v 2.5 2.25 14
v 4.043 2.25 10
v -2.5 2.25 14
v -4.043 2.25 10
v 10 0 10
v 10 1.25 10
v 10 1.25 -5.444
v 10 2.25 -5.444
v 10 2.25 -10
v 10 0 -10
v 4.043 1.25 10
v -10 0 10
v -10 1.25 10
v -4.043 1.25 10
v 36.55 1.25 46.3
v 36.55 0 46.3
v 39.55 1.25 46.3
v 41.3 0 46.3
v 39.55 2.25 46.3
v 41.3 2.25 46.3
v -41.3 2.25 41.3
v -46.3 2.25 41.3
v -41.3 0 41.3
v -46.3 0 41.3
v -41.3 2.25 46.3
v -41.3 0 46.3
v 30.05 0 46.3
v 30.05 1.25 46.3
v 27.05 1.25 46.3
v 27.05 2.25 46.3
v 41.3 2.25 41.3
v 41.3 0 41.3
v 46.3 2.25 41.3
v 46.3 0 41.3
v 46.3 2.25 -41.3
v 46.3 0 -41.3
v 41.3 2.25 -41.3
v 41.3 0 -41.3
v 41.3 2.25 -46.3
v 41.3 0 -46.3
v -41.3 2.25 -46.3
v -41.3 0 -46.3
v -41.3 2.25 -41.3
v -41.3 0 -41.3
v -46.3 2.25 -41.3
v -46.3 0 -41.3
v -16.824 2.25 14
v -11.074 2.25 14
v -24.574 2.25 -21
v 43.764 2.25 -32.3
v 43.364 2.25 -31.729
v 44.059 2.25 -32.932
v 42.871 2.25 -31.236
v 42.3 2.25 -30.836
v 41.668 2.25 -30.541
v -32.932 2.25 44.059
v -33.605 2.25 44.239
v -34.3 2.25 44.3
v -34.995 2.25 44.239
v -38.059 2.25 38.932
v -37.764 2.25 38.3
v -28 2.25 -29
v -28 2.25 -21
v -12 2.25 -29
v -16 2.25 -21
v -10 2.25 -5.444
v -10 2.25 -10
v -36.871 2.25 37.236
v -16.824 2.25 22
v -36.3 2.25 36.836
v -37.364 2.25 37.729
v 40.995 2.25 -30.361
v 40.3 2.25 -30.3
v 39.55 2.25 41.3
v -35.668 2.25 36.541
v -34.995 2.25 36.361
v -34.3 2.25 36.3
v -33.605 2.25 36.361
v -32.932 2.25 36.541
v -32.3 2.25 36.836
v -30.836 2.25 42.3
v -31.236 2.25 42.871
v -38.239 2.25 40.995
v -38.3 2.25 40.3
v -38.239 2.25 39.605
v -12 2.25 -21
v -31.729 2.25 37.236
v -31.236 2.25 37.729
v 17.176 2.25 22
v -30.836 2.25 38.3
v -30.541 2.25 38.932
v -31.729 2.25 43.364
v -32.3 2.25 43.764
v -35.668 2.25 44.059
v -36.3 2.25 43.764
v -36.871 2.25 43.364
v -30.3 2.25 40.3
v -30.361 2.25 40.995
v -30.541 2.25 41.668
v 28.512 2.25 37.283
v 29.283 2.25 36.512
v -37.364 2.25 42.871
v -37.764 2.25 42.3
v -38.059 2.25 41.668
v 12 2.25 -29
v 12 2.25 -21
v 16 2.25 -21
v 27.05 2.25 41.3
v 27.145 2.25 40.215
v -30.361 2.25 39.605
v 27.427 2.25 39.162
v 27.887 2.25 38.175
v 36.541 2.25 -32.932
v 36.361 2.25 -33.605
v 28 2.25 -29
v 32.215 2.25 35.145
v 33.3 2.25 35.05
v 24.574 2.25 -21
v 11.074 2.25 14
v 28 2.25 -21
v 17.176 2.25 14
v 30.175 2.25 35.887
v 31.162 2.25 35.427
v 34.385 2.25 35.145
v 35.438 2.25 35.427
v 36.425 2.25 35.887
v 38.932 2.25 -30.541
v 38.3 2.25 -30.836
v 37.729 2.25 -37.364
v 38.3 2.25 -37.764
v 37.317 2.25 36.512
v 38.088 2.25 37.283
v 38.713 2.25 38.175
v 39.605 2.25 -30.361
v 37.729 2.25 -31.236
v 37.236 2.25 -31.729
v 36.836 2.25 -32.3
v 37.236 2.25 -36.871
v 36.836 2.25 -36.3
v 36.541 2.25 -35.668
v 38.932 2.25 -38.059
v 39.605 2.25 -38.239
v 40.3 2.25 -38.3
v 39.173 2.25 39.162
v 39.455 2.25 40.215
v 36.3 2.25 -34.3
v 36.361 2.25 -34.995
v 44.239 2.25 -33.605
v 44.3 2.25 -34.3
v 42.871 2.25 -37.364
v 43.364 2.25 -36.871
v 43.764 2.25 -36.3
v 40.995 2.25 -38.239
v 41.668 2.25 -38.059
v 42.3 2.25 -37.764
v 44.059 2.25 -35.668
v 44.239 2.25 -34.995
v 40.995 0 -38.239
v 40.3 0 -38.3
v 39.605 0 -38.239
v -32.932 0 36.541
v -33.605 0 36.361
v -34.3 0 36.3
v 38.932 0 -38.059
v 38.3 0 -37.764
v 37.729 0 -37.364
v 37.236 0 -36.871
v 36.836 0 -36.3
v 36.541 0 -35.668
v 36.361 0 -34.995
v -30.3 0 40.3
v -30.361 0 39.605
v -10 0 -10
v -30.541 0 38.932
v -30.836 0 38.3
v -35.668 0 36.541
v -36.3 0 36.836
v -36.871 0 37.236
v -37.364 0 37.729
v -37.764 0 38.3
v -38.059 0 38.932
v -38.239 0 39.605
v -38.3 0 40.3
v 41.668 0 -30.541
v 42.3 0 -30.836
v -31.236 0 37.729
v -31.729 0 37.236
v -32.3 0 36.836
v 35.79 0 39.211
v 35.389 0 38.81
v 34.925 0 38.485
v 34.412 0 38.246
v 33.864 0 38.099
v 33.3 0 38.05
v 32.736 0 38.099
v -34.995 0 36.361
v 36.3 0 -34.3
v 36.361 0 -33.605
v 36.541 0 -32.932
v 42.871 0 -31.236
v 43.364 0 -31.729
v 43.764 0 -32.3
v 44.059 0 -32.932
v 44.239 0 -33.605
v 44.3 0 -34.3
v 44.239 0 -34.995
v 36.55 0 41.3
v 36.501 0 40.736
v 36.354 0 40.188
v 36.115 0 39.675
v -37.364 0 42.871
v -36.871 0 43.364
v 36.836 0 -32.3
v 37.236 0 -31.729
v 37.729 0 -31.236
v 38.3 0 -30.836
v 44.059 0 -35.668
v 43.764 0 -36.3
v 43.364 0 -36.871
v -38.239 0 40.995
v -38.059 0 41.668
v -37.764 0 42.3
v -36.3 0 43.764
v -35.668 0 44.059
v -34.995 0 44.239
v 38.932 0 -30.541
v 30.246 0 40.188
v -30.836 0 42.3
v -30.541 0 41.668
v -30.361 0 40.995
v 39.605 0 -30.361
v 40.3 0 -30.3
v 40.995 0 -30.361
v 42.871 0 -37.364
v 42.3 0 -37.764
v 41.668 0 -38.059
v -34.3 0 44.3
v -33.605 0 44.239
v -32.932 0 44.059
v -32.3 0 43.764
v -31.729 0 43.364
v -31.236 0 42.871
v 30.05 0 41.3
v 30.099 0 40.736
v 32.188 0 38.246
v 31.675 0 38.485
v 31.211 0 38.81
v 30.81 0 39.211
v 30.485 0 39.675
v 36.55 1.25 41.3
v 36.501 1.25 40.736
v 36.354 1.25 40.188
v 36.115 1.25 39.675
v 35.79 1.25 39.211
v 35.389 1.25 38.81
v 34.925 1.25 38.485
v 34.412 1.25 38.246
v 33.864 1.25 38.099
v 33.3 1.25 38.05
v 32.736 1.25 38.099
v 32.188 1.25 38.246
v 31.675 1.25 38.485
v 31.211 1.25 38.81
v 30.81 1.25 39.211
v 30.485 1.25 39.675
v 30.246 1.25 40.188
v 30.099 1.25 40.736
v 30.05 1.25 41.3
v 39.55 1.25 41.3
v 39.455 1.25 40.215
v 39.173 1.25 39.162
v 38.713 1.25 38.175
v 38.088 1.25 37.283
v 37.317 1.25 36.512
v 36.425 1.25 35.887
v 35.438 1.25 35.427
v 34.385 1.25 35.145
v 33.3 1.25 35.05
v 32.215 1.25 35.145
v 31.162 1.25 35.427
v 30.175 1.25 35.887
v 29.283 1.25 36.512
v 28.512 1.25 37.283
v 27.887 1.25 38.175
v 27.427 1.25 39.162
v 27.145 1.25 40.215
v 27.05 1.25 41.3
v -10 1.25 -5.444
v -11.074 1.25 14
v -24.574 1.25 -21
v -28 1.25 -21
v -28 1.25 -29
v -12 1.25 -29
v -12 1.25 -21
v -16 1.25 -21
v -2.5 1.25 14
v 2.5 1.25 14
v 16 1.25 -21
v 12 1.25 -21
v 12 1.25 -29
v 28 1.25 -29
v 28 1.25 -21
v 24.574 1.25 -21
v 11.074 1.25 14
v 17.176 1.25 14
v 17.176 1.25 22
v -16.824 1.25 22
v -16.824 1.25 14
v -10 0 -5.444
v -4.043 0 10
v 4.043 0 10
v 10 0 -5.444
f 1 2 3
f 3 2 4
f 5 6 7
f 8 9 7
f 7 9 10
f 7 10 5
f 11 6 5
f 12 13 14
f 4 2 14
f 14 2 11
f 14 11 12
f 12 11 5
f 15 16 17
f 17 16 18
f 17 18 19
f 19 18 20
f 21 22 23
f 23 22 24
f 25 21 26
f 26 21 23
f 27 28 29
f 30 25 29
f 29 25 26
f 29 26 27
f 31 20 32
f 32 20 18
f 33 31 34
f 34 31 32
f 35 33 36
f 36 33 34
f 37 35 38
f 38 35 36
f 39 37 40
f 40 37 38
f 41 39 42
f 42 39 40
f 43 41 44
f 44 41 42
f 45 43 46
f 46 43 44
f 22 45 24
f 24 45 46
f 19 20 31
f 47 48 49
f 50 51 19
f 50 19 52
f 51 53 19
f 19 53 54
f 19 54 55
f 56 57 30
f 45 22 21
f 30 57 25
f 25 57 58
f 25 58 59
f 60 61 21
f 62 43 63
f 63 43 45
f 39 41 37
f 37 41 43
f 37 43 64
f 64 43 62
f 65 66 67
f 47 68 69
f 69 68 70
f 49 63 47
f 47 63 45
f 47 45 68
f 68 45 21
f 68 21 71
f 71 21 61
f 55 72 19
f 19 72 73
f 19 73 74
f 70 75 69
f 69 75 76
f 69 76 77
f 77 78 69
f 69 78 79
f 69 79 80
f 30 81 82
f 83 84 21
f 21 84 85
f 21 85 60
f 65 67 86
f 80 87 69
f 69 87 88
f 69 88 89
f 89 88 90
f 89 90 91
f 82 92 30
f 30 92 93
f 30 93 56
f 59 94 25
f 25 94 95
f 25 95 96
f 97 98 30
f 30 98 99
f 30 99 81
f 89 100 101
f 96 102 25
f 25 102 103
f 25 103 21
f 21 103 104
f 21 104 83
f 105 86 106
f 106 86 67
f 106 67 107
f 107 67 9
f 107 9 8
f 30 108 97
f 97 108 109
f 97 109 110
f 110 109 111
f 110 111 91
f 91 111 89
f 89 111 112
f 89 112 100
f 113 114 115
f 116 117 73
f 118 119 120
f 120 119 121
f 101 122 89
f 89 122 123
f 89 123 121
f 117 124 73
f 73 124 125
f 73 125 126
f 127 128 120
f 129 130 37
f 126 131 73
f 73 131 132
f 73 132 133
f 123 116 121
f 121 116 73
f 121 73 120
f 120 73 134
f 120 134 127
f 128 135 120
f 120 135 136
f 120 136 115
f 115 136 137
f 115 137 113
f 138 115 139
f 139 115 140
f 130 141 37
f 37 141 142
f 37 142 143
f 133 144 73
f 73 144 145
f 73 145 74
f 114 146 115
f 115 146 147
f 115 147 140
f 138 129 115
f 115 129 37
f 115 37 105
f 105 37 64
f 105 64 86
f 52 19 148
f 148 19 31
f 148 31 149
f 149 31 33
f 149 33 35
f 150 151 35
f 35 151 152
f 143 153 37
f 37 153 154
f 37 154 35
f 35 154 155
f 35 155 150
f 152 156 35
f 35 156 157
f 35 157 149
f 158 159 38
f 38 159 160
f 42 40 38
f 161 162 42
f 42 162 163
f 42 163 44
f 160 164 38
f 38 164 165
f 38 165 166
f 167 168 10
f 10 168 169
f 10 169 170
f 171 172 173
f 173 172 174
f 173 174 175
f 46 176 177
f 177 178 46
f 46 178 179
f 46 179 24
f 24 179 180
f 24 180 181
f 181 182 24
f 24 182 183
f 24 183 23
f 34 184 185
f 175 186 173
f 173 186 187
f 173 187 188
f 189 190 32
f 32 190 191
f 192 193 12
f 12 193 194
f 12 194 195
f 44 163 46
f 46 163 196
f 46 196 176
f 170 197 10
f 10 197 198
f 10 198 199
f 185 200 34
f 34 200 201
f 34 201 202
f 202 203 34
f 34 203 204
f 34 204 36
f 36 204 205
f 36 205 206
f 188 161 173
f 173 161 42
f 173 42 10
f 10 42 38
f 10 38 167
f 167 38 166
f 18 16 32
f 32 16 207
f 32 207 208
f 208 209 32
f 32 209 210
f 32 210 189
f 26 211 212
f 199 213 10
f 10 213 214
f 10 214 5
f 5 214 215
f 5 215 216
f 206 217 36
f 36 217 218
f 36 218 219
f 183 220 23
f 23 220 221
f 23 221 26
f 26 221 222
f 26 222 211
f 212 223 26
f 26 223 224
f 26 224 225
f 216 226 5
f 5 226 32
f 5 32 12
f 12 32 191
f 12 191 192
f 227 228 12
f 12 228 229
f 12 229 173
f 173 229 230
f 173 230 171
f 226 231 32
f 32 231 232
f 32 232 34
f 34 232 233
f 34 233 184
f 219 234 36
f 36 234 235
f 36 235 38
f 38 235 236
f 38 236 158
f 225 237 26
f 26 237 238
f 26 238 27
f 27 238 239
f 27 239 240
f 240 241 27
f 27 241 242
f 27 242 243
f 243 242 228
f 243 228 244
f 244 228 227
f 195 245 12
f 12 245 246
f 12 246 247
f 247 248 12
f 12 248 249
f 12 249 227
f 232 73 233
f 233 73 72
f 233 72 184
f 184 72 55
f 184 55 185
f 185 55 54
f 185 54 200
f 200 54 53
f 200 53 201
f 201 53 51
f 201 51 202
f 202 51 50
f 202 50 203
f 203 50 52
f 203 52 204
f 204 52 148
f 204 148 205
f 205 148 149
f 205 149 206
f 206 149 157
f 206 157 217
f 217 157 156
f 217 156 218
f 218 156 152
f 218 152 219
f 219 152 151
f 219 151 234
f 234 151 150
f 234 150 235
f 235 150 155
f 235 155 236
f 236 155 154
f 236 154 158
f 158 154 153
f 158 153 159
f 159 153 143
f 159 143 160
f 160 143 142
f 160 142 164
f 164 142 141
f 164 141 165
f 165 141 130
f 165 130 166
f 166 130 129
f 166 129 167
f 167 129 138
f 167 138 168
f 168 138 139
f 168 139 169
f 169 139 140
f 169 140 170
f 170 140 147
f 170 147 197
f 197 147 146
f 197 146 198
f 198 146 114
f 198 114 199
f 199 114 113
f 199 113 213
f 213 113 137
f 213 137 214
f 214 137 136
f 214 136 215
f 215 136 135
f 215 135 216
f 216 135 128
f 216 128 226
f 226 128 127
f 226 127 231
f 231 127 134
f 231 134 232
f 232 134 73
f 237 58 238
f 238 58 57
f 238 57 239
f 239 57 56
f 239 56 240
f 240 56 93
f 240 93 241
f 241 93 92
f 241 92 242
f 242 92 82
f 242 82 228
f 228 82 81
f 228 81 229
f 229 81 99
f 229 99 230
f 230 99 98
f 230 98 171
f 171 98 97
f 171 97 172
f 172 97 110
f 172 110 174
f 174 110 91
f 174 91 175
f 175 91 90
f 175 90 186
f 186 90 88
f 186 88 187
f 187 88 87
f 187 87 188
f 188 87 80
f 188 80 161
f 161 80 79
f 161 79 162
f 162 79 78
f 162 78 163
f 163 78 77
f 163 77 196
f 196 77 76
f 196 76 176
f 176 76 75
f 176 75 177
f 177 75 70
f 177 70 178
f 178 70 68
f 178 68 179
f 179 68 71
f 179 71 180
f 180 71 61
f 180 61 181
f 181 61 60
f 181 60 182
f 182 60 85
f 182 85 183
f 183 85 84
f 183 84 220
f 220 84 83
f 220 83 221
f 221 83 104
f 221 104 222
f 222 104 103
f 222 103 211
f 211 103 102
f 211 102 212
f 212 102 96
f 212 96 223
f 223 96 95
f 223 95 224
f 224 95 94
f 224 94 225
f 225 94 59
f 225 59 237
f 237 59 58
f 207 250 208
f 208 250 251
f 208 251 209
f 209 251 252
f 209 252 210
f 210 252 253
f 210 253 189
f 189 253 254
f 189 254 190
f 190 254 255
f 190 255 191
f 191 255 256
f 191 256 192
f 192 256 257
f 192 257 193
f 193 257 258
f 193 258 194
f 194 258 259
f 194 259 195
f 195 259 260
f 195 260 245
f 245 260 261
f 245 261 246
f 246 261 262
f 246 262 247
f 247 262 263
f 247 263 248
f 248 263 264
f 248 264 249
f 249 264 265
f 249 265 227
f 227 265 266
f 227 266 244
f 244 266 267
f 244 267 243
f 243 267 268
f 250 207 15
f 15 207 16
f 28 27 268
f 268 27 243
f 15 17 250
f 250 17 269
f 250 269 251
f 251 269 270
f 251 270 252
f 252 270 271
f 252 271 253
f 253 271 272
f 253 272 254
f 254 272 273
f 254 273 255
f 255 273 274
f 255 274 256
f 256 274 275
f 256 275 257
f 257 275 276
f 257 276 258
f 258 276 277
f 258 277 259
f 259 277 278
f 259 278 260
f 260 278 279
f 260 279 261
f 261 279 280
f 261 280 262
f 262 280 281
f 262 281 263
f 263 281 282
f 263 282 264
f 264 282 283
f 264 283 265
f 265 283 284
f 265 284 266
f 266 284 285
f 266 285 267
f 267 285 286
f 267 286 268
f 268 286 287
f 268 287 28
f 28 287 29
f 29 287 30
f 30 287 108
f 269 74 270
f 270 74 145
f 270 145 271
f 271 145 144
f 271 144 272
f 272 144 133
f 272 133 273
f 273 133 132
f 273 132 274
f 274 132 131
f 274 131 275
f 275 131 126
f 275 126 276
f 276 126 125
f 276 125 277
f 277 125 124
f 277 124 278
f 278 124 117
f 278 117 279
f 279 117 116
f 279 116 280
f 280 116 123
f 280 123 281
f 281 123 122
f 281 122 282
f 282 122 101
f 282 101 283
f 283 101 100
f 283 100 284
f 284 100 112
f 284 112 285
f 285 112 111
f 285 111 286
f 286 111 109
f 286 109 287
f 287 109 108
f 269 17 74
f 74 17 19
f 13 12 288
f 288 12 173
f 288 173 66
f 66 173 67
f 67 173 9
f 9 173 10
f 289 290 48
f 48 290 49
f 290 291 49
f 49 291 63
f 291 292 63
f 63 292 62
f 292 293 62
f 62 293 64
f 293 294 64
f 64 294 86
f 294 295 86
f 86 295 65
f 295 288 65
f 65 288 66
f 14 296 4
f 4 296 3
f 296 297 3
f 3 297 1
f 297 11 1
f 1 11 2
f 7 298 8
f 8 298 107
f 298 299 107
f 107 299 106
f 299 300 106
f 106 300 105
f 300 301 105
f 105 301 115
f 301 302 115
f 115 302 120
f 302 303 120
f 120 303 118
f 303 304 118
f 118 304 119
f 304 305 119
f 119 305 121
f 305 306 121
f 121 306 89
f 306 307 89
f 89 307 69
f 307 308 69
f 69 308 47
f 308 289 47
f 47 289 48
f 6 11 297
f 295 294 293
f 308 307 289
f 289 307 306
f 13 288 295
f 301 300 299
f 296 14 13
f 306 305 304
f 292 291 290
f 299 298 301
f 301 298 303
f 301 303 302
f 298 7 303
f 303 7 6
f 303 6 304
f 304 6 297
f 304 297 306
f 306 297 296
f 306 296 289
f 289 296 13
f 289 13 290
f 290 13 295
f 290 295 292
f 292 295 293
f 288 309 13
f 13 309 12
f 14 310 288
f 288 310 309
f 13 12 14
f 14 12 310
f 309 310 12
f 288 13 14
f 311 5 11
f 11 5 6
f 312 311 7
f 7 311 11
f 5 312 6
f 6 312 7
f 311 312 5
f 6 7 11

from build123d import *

# Parameters (mm, degrees)
BOSS_EXTRUDE1_DEPTH   = 2.25
SKETCH3_R             = 4
CUT_EXTRUDE1_DEPTH    = 10
CUT_EXTRUDE3_DEPTH    = 10
CUT_EXTRUDE4_DEPTH    = 1
SKETCH7_W             = 20
SKETCH7_H             = 20
CUT_EXTRUDE5_DEPTH    = 10
CUT_EXTRUDE7_DEPTH    = 1
BOSS_EXTRUDE3_DEPTH   = 2.25
BOSS_EXTRUDE3_2_DEPTH = 2.25
CUT_EXTRUDE8_DEPTH    = 1


with BuildPart() as part:
    # Sketch2 → Boss-Extrude1 (new body)
    with BuildSketch(Plane(origin=(0, 0, 0), x_dir=(1, 0, 0), z_dir=(0, 1, 0))):
        Polygon((-41.3, 41.3), (-46.3, 41.3), (-46.3, -41.3), (-41.3, -41.3), (-41.3, -46.3), (41.3, -46.3), (41.3, -41.3), (46.3, -41.3), (46.3, 41.3), (41.3, 41.3), (41.3, 46.3), (-41.3, 46.3), align=None)
    extrude(amount=BOSS_EXTRUDE1_DEPTH)

    # Sketch3 → Cut-Extrude1 (cut)
    with BuildSketch(Plane(origin=(0, 2.25, 0), x_dir=(1, 0, 0), z_dir=(0, 1, 0))):
        with Locations((-34.3, -40.3)):
            Circle(SKETCH3_R)
        with Locations((40.3, 34.3)):
            Circle(SKETCH3_R)
    extrude(amount=-CUT_EXTRUDE1_DEPTH, mode=Mode.SUBTRACT)

    # Sketch5 → Cut-Extrude3 (cut)
    with BuildSketch(Plane(origin=(0, 2.25, 0), x_dir=(1, 0, 0), z_dir=(0, 1, 0))):
        with BuildLine():
            Line((30.05, -41.3), (30.05, -46.3))
            Line((30.05, -46.3), (36.55, -46.3))
            Line((36.55, -46.3), (36.55, -41.3))
            ThreePointArc((36.55, -41.3), (33.3, -38.05), (30.05, -41.3))
        make_face()
    extrude(amount=-CUT_EXTRUDE3_DEPTH, mode=Mode.SUBTRACT)

    # Sketch6 → Cut-Extrude4 (cut)
    with BuildSketch(Plane(origin=(0, 2.25, 0), x_dir=(1, 0, 0), z_dir=(0, 1, 0))):
        with BuildLine():
            Line((27.05, -46.3), (27.05, -41.3))
            ThreePointArc((27.05, -41.3), (33.3, -35.05), (39.55, -41.3))
            Line((39.55, -41.3), (39.55, -46.3))
            Line((39.55, -46.3), (36.55, -46.3))
            Line((36.55, -46.3), (36.55, -41.3))
            Line((36.55, -41.3), (30.05, -41.3))
            Line((30.05, -41.3), (30.05, -46.3))
            Line((30.05, -46.3), (27.05, -46.3))
        make_face()
    extrude(amount=-CUT_EXTRUDE4_DEPTH, mode=Mode.SUBTRACT)

    # Sketch7 → Cut-Extrude5 (cut)
    with BuildSketch(Plane(origin=(0, 2.25, 0), x_dir=(1, 0, 0), z_dir=(0, 1, 0))):
        Rectangle(SKETCH7_W, SKETCH7_H)
    extrude(amount=-CUT_EXTRUDE5_DEPTH, mode=Mode.SUBTRACT)

    # Sketch18 → Cut-Extrude7 (cut)
    with BuildSketch(Plane(origin=(0, 2.25, 0), x_dir=(1, 0, 0), z_dir=(0, 1, 0))):
        Polygon((-2.5, -14), (-16, 21), (-12, 21), (-12, 29), (-28, 29), (-28, 21), (-24.574475649, 21), (-11.074475649, -14), (-16.824113427, -14), (-16.824113427, -22), (17.175886573, -22), (17.175886573, -14), (11.074475649, -14), (24.574475649, 21), (28, 21), (28, 29), (12, 29), (12, 21), (16, 21), (2.5, -14), align=None)
    extrude(amount=-CUT_EXTRUDE7_DEPTH, mode=Mode.SUBTRACT)


with BuildPart() as body_2:
    # Sketch19 → Boss-Extrude3 (new body)
    with BuildSketch(Plane(origin=(0, 2.25, 0), x_dir=(1, 0, 0), z_dir=(0, 1, 0))):
        Polygon((10, 5.444444444), (4.042857143, -10), (10, -10), align=None)
    extrude(amount=-BOSS_EXTRUDE3_DEPTH)


with BuildPart() as body_3:
    # Sketch19 → Boss-Extrude3 2 (new body)
    with BuildSketch(Plane(origin=(0, 2.25, 0), x_dir=(1, 0, 0), z_dir=(0, 1, 0))):
        Polygon((-4.042857143, -10), (-10, 5.444444444), (-10, -10), align=None)
    extrude(amount=-BOSS_EXTRUDE3_2_DEPTH)


with BuildPart() as cut_extrude8_tool:
    # Sketch20 → Cut-Extrude8 (new body)
    with BuildSketch(Plane(origin=(0, 2.25, 0), x_dir=(1, 0, 0), z_dir=(0, 1, 0))):
        Polygon((-10, 5.444444444), (-10, -10), (-4.042857143, -10), align=None)
        Polygon((4.042857143, -10), (10, 5.444444444), (10, -10), align=None)
    extrude(amount=-CUT_EXTRUDE8_DEPTH)


with BuildPart() as body_2_1:
    add(body_2.part)

    # Cut-Extrude8: cut by cut_extrude8_tool
    add(cut_extrude8_tool.part, mode=Mode.SUBTRACT)


with BuildPart() as body_3_1:
    add(body_3.part)

    # Cut-Extrude8: cut by cut_extrude8_tool
    add(cut_extrude8_tool.part, mode=Mode.SUBTRACT)


solid = Compound([part.part, body_2_1.part, body_3_1.part])
